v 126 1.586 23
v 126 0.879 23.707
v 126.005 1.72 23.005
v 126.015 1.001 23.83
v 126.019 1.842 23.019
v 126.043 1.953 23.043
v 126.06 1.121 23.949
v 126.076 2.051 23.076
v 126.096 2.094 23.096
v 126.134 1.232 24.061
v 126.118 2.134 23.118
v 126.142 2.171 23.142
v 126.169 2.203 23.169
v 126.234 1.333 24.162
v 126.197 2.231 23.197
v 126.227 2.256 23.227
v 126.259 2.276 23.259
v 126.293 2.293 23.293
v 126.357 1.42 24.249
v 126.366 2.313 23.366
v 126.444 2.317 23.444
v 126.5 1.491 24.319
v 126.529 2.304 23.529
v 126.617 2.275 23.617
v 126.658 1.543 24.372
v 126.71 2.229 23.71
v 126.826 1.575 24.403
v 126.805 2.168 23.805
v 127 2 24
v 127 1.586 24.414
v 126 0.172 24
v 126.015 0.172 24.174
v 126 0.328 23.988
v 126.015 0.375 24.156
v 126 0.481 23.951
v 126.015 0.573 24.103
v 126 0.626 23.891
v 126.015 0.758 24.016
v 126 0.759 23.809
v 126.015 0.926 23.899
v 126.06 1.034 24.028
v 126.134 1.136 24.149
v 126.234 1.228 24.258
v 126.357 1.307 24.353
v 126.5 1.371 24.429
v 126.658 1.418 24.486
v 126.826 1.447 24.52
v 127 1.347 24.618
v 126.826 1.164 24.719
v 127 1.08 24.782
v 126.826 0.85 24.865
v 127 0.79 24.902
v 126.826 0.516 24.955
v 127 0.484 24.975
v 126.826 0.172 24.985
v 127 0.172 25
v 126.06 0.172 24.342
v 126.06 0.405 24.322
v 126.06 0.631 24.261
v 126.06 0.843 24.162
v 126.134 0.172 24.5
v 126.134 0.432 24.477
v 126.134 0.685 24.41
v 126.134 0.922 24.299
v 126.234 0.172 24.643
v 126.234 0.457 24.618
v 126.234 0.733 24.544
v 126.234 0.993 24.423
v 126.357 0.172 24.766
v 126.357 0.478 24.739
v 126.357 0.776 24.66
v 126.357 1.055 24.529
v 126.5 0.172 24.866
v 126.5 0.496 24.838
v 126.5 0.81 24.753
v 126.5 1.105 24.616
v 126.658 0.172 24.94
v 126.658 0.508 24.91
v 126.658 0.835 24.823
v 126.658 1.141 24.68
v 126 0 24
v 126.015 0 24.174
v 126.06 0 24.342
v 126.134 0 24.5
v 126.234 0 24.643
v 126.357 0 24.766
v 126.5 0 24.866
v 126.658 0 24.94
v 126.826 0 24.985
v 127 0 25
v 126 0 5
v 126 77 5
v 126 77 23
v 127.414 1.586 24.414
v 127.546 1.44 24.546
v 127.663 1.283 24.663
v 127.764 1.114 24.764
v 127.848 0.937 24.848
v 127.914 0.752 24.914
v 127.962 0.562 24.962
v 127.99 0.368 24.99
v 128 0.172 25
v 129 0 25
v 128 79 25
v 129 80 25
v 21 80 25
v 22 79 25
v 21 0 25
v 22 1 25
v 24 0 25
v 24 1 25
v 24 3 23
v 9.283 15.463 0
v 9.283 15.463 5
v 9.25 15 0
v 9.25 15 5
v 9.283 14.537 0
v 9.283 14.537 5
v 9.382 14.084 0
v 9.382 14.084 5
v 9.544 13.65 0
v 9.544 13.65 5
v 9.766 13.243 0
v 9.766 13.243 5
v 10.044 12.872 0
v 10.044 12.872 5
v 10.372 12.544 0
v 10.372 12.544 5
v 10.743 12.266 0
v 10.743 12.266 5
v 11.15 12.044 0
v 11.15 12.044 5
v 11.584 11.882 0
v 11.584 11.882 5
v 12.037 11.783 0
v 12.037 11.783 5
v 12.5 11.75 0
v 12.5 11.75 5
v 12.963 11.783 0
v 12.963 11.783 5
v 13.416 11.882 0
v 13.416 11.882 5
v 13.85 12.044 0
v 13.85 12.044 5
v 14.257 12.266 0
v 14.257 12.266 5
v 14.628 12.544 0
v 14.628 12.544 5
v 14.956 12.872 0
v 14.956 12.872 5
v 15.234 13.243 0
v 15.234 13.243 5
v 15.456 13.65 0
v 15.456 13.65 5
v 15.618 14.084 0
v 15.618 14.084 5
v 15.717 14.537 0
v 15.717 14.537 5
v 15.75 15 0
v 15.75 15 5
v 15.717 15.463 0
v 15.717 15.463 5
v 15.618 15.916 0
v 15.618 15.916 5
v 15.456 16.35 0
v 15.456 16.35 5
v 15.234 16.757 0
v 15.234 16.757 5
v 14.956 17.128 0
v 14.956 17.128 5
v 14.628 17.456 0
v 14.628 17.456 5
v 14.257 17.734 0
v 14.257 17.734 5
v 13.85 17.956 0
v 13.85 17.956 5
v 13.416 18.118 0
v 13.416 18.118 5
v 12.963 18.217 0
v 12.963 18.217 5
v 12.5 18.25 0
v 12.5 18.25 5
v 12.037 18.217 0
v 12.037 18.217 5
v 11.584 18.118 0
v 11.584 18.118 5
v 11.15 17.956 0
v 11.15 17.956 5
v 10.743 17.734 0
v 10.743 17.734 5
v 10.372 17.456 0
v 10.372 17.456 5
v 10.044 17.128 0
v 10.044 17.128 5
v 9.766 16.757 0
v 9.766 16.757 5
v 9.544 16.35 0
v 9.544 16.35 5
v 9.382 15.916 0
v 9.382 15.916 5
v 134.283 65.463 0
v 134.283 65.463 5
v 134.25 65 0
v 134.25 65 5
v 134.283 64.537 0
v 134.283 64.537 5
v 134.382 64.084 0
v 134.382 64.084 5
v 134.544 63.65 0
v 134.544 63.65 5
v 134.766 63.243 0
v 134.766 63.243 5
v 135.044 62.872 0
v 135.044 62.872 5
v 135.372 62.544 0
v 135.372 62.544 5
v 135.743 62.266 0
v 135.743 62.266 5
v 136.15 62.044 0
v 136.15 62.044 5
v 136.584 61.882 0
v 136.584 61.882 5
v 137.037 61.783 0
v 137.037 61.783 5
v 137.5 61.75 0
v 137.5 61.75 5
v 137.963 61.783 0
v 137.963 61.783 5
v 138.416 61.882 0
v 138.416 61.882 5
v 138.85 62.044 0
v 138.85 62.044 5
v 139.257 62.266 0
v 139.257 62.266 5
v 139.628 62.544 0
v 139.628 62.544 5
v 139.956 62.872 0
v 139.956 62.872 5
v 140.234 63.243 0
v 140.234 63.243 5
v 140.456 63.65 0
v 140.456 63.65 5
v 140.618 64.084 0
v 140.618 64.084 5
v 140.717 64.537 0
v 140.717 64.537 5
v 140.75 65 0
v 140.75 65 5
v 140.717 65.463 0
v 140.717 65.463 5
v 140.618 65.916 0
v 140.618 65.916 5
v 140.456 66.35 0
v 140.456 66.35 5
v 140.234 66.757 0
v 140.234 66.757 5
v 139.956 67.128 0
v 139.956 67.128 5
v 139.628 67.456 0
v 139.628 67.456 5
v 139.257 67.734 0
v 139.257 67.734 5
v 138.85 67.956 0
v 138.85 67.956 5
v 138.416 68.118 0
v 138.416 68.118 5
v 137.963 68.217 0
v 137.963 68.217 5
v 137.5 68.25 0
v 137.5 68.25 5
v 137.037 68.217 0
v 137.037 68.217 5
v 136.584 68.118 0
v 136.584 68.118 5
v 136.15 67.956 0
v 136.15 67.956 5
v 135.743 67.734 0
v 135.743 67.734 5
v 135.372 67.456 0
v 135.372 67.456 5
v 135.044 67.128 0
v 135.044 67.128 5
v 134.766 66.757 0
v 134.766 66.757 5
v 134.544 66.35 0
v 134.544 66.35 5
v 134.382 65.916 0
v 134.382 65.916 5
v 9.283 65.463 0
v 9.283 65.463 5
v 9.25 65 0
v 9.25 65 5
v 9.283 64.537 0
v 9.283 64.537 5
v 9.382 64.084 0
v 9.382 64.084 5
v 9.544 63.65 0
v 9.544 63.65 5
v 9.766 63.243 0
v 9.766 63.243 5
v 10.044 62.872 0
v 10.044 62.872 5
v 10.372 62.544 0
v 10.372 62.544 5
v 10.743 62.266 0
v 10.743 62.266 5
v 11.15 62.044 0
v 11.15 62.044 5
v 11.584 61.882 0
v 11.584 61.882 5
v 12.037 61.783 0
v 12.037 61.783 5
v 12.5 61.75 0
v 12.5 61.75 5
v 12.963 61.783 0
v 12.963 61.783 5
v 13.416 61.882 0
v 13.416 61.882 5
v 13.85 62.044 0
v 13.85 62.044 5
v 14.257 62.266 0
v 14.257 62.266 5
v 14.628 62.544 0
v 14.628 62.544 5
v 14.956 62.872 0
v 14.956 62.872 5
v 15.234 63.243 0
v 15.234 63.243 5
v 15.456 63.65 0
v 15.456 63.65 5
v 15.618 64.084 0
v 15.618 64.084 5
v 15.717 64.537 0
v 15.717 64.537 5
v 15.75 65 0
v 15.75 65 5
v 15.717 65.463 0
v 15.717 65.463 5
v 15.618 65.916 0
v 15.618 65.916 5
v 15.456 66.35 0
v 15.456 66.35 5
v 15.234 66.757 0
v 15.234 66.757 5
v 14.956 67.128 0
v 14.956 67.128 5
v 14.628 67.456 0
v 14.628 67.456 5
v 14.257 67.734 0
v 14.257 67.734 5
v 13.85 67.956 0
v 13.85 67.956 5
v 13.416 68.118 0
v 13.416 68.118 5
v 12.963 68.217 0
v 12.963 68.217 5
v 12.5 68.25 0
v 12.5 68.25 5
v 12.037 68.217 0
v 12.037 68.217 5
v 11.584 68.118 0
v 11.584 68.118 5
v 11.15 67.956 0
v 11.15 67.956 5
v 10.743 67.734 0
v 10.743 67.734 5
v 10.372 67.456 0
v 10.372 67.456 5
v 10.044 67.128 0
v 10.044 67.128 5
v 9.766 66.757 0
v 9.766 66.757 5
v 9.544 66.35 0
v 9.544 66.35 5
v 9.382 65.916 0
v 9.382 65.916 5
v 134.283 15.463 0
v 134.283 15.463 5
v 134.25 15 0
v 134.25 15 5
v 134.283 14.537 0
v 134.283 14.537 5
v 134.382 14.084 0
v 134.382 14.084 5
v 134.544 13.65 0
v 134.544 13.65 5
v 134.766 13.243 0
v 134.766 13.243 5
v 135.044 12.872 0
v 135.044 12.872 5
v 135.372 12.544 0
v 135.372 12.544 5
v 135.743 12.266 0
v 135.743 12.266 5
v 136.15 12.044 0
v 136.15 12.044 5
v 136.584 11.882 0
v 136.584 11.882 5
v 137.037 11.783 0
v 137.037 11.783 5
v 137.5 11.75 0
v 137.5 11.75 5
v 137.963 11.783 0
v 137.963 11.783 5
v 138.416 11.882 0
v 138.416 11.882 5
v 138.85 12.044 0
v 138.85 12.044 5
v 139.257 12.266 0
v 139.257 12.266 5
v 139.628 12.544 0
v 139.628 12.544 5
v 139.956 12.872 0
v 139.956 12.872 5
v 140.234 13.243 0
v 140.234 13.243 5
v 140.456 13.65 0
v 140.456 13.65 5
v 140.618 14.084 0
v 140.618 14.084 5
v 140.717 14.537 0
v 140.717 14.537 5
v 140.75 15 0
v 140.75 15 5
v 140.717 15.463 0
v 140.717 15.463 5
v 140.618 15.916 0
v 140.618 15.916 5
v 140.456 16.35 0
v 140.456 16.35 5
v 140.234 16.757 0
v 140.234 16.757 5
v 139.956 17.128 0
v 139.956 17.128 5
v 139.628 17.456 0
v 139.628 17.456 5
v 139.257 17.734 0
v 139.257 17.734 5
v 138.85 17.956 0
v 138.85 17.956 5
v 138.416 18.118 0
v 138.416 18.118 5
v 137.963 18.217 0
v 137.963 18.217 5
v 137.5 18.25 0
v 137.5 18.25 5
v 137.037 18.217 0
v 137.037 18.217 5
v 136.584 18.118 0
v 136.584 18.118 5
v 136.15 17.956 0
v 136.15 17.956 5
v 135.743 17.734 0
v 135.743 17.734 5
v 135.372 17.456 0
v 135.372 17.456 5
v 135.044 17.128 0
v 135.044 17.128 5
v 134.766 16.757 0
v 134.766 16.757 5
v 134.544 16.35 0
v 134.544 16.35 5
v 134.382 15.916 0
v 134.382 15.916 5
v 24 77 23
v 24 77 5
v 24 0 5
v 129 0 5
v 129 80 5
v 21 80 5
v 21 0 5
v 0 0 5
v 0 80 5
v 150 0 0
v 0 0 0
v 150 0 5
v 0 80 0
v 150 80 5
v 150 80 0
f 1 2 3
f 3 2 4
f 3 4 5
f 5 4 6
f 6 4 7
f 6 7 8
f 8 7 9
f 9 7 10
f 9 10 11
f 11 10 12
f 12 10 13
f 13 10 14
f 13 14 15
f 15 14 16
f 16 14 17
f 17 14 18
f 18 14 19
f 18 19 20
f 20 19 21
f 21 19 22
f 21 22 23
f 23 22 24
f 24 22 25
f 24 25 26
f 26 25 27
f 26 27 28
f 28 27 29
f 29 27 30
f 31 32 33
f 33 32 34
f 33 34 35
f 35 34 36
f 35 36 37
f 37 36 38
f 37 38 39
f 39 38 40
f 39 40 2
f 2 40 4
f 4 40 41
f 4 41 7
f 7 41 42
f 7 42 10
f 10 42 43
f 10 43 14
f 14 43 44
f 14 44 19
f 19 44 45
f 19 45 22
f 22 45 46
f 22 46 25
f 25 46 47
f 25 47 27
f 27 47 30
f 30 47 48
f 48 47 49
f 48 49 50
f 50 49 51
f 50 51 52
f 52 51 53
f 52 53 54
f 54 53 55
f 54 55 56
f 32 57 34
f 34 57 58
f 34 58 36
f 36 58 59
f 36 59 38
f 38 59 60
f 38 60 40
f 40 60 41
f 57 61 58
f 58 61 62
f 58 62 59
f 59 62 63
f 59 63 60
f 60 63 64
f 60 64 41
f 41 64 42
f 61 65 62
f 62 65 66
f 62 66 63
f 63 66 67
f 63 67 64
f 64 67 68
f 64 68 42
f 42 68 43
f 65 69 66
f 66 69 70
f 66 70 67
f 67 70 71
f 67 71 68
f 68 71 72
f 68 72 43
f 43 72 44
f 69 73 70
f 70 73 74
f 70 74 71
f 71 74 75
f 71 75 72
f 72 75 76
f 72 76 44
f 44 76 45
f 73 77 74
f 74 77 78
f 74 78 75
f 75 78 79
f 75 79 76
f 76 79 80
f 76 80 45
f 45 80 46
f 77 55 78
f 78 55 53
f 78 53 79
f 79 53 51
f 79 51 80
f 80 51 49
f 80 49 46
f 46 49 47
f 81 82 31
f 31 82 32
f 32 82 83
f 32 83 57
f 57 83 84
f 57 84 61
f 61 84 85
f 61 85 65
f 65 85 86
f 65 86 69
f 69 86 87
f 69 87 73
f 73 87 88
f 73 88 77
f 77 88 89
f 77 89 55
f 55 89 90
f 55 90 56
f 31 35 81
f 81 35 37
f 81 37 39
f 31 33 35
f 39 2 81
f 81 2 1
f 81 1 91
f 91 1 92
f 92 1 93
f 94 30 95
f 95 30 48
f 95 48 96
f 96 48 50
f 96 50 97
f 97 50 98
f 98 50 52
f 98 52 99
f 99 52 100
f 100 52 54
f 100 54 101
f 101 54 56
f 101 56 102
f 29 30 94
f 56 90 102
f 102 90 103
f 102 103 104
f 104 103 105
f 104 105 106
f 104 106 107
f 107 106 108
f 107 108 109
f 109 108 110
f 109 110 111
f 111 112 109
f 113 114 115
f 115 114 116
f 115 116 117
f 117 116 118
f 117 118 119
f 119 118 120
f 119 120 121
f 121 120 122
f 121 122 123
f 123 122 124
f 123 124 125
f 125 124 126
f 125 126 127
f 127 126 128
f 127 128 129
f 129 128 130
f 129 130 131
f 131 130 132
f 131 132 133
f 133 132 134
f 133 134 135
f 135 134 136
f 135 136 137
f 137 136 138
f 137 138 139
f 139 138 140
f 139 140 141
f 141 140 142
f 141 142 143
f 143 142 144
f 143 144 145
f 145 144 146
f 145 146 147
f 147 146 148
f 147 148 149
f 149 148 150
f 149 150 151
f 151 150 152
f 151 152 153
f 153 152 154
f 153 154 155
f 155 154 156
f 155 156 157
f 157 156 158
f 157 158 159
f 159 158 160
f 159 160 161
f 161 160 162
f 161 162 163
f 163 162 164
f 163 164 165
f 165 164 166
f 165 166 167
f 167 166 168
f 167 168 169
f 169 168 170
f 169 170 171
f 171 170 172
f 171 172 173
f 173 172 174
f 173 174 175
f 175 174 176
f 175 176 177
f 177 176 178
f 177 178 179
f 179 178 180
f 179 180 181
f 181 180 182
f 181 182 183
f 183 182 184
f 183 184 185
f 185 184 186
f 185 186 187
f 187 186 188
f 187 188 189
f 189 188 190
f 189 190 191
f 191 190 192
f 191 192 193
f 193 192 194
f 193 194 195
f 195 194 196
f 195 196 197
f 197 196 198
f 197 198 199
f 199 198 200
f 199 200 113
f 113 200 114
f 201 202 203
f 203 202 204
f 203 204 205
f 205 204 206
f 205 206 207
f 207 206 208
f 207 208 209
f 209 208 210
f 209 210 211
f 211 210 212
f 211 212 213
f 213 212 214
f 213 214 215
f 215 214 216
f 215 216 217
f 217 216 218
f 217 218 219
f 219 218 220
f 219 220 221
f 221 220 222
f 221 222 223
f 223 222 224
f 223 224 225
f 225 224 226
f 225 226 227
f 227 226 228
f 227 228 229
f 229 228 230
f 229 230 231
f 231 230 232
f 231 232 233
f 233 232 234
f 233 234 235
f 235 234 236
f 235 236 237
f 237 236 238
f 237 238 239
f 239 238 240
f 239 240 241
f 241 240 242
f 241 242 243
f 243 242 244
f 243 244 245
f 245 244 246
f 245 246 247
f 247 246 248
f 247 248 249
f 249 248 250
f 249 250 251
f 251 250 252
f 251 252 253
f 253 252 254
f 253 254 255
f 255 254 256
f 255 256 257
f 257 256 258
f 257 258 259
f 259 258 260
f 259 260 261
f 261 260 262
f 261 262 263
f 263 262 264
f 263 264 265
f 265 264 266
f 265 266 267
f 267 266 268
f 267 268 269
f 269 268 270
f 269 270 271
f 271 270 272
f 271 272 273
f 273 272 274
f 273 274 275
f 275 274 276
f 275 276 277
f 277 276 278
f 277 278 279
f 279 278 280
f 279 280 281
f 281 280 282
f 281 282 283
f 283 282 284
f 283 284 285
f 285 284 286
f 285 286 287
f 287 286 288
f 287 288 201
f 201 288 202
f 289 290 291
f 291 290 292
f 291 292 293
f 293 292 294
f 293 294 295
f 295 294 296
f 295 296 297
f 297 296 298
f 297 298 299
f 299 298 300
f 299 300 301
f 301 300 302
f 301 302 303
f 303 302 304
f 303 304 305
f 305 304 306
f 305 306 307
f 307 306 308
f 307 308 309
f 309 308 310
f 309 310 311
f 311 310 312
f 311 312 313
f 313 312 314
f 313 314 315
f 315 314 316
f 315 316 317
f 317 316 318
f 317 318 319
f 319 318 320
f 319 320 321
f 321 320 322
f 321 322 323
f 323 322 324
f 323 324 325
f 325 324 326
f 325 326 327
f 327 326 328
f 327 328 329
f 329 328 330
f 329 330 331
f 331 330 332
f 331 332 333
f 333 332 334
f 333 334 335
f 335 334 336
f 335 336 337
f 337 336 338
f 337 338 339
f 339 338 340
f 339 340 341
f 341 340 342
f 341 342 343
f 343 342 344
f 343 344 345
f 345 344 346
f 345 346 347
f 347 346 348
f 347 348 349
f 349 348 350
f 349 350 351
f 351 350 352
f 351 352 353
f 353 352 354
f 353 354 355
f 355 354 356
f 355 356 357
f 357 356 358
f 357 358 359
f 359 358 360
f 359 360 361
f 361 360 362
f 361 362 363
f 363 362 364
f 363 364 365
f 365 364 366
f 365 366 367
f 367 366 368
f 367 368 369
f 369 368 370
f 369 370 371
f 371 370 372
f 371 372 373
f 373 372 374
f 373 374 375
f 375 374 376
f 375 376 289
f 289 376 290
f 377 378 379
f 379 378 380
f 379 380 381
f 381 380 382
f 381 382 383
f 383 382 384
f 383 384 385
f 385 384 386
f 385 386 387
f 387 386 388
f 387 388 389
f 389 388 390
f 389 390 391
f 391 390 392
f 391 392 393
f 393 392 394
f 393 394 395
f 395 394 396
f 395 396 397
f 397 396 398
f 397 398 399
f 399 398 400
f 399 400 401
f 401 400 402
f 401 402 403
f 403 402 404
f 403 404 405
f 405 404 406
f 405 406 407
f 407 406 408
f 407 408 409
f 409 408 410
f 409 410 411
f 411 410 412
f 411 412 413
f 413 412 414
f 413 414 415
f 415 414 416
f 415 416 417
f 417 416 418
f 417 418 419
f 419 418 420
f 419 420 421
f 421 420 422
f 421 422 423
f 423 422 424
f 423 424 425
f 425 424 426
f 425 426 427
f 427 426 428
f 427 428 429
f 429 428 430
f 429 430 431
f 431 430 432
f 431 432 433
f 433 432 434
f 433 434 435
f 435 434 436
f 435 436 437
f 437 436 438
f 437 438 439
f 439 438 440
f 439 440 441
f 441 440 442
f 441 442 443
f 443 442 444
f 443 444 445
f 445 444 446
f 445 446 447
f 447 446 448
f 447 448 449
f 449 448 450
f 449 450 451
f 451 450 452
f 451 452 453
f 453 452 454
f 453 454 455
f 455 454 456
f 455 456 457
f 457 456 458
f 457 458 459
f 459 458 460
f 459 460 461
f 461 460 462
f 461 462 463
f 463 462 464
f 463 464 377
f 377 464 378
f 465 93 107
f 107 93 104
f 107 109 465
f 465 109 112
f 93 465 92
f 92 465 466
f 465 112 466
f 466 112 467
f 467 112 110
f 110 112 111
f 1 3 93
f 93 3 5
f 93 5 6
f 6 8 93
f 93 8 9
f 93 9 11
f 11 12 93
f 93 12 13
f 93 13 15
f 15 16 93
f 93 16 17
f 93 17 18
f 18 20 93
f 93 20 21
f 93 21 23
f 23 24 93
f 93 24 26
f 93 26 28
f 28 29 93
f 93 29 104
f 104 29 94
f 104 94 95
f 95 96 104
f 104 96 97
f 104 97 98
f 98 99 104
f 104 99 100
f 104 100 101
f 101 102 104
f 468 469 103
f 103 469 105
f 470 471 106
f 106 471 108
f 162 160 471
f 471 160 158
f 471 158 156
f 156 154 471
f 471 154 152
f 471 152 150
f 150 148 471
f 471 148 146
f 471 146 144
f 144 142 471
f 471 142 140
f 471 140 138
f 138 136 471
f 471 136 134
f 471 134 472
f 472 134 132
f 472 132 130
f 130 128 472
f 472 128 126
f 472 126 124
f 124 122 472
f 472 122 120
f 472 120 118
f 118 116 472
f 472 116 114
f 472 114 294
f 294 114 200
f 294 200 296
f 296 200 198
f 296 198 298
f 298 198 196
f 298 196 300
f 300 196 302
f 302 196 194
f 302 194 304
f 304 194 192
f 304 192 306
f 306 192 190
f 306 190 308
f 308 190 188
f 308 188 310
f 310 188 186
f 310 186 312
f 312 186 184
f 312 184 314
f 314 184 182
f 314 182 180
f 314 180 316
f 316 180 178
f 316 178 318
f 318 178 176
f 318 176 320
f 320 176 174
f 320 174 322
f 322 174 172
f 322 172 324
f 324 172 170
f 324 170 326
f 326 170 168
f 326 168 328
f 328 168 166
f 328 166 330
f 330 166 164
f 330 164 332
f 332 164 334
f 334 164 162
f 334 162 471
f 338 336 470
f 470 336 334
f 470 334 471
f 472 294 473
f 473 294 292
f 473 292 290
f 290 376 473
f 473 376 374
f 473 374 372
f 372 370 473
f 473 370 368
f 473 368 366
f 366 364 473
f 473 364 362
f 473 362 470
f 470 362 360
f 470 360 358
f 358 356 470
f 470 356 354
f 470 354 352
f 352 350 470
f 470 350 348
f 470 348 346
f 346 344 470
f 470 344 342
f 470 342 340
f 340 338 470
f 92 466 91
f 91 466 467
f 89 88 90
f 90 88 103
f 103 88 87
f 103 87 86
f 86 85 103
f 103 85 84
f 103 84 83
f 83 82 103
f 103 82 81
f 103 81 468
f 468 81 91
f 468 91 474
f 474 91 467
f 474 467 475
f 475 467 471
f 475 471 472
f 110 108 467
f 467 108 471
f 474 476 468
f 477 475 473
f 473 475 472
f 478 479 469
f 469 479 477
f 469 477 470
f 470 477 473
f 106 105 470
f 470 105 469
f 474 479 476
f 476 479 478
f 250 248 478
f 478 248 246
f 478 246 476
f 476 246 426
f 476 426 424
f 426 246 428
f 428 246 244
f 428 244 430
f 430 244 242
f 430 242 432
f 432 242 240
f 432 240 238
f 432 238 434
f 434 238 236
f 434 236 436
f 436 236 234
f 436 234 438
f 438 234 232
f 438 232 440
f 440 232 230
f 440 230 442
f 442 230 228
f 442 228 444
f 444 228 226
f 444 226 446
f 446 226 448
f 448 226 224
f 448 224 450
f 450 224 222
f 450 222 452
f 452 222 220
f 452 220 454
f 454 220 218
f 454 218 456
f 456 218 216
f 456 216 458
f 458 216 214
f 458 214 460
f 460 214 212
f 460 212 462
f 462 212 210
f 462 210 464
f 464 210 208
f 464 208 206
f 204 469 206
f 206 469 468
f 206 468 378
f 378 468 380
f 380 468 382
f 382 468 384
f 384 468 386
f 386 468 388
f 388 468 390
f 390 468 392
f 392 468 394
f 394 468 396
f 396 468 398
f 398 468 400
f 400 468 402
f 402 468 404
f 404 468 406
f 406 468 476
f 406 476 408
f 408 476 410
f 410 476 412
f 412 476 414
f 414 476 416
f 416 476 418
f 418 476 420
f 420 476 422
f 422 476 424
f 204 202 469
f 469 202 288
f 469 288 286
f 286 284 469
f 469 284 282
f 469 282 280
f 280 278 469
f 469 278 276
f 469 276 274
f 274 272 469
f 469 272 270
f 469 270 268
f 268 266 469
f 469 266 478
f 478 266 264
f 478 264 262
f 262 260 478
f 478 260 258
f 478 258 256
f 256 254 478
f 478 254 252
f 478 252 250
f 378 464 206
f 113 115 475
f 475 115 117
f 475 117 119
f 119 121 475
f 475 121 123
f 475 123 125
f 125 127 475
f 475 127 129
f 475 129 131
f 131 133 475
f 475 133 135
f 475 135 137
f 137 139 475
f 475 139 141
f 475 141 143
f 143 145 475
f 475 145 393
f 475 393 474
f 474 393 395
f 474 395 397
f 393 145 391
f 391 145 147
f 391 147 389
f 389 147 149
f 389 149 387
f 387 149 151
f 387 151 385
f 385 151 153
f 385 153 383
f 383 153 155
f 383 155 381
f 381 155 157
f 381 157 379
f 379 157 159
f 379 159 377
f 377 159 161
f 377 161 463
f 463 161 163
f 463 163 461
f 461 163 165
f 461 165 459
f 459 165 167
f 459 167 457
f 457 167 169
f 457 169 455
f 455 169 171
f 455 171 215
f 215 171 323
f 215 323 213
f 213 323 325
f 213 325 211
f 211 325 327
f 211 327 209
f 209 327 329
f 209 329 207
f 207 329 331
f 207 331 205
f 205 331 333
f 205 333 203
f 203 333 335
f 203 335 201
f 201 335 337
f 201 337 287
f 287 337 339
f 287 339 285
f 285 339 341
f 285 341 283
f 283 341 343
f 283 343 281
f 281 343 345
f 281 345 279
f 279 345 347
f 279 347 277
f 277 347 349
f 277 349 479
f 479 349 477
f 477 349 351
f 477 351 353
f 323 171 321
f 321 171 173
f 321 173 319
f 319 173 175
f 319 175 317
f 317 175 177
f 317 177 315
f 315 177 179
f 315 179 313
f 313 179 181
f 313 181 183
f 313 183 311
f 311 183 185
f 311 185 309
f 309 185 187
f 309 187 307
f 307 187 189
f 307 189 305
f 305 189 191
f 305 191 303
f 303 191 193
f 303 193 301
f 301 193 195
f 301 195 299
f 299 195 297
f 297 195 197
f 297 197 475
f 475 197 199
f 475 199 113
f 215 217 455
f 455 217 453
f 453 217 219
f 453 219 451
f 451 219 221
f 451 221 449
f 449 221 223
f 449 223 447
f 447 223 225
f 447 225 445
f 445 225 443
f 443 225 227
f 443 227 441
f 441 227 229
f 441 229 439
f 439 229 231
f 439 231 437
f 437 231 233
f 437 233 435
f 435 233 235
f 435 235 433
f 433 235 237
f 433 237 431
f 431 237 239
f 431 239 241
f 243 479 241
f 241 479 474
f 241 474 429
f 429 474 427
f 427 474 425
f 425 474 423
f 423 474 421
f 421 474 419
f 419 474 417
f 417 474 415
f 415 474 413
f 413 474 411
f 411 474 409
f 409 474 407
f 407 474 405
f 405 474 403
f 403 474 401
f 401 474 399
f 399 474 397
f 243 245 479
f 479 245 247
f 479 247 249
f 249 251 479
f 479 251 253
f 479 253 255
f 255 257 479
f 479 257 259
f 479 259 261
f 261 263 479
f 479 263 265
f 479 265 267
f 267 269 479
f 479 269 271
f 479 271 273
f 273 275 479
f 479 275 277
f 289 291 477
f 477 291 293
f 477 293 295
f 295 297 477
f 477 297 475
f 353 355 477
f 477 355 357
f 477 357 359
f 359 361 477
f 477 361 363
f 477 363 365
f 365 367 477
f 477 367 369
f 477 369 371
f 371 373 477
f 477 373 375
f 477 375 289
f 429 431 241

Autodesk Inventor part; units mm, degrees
ref_plane "YZ Plane" through (0, 0, 0) normal (1, 0, 0) x (0, 1, 0)
ref_plane "XZ Plane" through (0, 0, 0) normal (0, 1, 0) x (-1, 0, 0)
ref_plane "XY Plane" through (0, 0, 0) normal (0, 0, 1) x (1, 0, 0)
sketch "Sketch1" plane through (0, 0, 0) normal (0, 0, 1) x (1, 0, 0)
  line L0 (0, 0) -> (150, 0)
  line L1 (150, 0) -> (150, 80)
  line L2 (150, 80) -> (0, 80)
  line L3 (0, 80) -> (0, 0)
  dimension "d0" = 150
  dimension "d1" = 80
extrude "Extrusion1" add sketch "Sketch1" along normal blind 5
sketch "Sketch2" plane through (0, 0, 5) normal (0, 0, 1) x (1, 0, 0)
  line L0 (0, 0) -> (150, 0) projected
  line L1 (150, 80) -> (0, 80) projected
  line L2 (129, 0) -> (21, 0)
  line L3 (21, 0) -> (21, 80)
  line L4 (21, 80) -> (129, 80)
  line L5 (129, 80) -> (129, 0)
  line L6 (126, 3) -> (24, 3)
  line L7 (24, 3) -> (24, 77)
  line L8 (24, 77) -> (126, 77)
  line L9 (126, 77) -> (126, 3)
  line L10 (150, 0) -> (150, 80) projected
  point P0 (129, 80)
  point P1 (21, 0)
  dimension "d4" = 108
  dimension "d5" = 102
  dimension "d6" = 3
  dimension "d7" = 3
  dimension "d8" = 3
  dimension "d9" = 21
extrude "Extrusion2" add sketch "Sketch2" along normal blind 20 contours L3 L1 L5 L0
chamfer "Chamfer1" distance 2 angle 45 1 edges at (75, 3, 25)
chamfer "Chamfer2" distance 2 angle 45 1 edges at (126, 40, 25)
chamfer "Chamfer3" distance 2 angle 45 2 edges at (75, 77, 25) (24, 40, 25)
sketch "Sketch3" plane through (0, 0, 5) normal (0, 0, 1) x (1, 0, 0)
  circle A0 centre (137.5, 15) radius 3.25
  circle A1 centre (137.5, 65) radius 3.25
  line L0 (150, 0) -> (150, 80) projected
  line L1 (129, 0) -> (150, 0) projected
  line L2 (75, -16.6248) -> (75, 70.7208)
  line L3 (0, 80) -> (0, 0) projected
  circle A2 centre (12.5, 15) radius 3.25
  circle A3 centre (12.5, 65) radius 3.25
  dimension "d21" = 6.5
  dimension "d22" = 6.5
  dimension "d23" = 12.5
  dimension "d24" = 12.5
  dimension "d25" = 50
  dimension "d26" = 15
  dimension "d27" = 75
extrude "Extrusion3" cut sketch "Sketch3" against normal blind 60
sketch "Sketch4" plane through (24, 3, 5) normal (0, 1, 0) x (1, 0, 0)
  line L0 (0, 0) -> (0, -18) projected
  line L1 (102, -18) -> (102, 10.1304)
  line L2 (102, 10.1304) -> (0, 10.1304)
  line L3 (0, 10.1304) -> (0, -18)
  line L4 (0, 0) -> (102, 0) projected
  line L5 (102, 0) -> (0, 0)
  line L6 (0, 0) -> (0, -34.2808)
  line L7 (0, -34.2808) -> (102, -34.2808)
  line L8 (102, -34.2808) -> (102, 0)
  point P0 (-24, 5)
extrude "Extrusion5" cut sketch "Sketch4" against normal blind 10 contours L4 L1 L8 L7 L6 L0
fillet "Fillet1" radius 2 1 edges at (127, 1, 25)
fillet "Fillet2" radius 1 3 edges at (126, 0.9369, 24.8478) (126, 0.0858, 25) (126, 2.2929, 23.7071)
properties part number "MediumHolder"
